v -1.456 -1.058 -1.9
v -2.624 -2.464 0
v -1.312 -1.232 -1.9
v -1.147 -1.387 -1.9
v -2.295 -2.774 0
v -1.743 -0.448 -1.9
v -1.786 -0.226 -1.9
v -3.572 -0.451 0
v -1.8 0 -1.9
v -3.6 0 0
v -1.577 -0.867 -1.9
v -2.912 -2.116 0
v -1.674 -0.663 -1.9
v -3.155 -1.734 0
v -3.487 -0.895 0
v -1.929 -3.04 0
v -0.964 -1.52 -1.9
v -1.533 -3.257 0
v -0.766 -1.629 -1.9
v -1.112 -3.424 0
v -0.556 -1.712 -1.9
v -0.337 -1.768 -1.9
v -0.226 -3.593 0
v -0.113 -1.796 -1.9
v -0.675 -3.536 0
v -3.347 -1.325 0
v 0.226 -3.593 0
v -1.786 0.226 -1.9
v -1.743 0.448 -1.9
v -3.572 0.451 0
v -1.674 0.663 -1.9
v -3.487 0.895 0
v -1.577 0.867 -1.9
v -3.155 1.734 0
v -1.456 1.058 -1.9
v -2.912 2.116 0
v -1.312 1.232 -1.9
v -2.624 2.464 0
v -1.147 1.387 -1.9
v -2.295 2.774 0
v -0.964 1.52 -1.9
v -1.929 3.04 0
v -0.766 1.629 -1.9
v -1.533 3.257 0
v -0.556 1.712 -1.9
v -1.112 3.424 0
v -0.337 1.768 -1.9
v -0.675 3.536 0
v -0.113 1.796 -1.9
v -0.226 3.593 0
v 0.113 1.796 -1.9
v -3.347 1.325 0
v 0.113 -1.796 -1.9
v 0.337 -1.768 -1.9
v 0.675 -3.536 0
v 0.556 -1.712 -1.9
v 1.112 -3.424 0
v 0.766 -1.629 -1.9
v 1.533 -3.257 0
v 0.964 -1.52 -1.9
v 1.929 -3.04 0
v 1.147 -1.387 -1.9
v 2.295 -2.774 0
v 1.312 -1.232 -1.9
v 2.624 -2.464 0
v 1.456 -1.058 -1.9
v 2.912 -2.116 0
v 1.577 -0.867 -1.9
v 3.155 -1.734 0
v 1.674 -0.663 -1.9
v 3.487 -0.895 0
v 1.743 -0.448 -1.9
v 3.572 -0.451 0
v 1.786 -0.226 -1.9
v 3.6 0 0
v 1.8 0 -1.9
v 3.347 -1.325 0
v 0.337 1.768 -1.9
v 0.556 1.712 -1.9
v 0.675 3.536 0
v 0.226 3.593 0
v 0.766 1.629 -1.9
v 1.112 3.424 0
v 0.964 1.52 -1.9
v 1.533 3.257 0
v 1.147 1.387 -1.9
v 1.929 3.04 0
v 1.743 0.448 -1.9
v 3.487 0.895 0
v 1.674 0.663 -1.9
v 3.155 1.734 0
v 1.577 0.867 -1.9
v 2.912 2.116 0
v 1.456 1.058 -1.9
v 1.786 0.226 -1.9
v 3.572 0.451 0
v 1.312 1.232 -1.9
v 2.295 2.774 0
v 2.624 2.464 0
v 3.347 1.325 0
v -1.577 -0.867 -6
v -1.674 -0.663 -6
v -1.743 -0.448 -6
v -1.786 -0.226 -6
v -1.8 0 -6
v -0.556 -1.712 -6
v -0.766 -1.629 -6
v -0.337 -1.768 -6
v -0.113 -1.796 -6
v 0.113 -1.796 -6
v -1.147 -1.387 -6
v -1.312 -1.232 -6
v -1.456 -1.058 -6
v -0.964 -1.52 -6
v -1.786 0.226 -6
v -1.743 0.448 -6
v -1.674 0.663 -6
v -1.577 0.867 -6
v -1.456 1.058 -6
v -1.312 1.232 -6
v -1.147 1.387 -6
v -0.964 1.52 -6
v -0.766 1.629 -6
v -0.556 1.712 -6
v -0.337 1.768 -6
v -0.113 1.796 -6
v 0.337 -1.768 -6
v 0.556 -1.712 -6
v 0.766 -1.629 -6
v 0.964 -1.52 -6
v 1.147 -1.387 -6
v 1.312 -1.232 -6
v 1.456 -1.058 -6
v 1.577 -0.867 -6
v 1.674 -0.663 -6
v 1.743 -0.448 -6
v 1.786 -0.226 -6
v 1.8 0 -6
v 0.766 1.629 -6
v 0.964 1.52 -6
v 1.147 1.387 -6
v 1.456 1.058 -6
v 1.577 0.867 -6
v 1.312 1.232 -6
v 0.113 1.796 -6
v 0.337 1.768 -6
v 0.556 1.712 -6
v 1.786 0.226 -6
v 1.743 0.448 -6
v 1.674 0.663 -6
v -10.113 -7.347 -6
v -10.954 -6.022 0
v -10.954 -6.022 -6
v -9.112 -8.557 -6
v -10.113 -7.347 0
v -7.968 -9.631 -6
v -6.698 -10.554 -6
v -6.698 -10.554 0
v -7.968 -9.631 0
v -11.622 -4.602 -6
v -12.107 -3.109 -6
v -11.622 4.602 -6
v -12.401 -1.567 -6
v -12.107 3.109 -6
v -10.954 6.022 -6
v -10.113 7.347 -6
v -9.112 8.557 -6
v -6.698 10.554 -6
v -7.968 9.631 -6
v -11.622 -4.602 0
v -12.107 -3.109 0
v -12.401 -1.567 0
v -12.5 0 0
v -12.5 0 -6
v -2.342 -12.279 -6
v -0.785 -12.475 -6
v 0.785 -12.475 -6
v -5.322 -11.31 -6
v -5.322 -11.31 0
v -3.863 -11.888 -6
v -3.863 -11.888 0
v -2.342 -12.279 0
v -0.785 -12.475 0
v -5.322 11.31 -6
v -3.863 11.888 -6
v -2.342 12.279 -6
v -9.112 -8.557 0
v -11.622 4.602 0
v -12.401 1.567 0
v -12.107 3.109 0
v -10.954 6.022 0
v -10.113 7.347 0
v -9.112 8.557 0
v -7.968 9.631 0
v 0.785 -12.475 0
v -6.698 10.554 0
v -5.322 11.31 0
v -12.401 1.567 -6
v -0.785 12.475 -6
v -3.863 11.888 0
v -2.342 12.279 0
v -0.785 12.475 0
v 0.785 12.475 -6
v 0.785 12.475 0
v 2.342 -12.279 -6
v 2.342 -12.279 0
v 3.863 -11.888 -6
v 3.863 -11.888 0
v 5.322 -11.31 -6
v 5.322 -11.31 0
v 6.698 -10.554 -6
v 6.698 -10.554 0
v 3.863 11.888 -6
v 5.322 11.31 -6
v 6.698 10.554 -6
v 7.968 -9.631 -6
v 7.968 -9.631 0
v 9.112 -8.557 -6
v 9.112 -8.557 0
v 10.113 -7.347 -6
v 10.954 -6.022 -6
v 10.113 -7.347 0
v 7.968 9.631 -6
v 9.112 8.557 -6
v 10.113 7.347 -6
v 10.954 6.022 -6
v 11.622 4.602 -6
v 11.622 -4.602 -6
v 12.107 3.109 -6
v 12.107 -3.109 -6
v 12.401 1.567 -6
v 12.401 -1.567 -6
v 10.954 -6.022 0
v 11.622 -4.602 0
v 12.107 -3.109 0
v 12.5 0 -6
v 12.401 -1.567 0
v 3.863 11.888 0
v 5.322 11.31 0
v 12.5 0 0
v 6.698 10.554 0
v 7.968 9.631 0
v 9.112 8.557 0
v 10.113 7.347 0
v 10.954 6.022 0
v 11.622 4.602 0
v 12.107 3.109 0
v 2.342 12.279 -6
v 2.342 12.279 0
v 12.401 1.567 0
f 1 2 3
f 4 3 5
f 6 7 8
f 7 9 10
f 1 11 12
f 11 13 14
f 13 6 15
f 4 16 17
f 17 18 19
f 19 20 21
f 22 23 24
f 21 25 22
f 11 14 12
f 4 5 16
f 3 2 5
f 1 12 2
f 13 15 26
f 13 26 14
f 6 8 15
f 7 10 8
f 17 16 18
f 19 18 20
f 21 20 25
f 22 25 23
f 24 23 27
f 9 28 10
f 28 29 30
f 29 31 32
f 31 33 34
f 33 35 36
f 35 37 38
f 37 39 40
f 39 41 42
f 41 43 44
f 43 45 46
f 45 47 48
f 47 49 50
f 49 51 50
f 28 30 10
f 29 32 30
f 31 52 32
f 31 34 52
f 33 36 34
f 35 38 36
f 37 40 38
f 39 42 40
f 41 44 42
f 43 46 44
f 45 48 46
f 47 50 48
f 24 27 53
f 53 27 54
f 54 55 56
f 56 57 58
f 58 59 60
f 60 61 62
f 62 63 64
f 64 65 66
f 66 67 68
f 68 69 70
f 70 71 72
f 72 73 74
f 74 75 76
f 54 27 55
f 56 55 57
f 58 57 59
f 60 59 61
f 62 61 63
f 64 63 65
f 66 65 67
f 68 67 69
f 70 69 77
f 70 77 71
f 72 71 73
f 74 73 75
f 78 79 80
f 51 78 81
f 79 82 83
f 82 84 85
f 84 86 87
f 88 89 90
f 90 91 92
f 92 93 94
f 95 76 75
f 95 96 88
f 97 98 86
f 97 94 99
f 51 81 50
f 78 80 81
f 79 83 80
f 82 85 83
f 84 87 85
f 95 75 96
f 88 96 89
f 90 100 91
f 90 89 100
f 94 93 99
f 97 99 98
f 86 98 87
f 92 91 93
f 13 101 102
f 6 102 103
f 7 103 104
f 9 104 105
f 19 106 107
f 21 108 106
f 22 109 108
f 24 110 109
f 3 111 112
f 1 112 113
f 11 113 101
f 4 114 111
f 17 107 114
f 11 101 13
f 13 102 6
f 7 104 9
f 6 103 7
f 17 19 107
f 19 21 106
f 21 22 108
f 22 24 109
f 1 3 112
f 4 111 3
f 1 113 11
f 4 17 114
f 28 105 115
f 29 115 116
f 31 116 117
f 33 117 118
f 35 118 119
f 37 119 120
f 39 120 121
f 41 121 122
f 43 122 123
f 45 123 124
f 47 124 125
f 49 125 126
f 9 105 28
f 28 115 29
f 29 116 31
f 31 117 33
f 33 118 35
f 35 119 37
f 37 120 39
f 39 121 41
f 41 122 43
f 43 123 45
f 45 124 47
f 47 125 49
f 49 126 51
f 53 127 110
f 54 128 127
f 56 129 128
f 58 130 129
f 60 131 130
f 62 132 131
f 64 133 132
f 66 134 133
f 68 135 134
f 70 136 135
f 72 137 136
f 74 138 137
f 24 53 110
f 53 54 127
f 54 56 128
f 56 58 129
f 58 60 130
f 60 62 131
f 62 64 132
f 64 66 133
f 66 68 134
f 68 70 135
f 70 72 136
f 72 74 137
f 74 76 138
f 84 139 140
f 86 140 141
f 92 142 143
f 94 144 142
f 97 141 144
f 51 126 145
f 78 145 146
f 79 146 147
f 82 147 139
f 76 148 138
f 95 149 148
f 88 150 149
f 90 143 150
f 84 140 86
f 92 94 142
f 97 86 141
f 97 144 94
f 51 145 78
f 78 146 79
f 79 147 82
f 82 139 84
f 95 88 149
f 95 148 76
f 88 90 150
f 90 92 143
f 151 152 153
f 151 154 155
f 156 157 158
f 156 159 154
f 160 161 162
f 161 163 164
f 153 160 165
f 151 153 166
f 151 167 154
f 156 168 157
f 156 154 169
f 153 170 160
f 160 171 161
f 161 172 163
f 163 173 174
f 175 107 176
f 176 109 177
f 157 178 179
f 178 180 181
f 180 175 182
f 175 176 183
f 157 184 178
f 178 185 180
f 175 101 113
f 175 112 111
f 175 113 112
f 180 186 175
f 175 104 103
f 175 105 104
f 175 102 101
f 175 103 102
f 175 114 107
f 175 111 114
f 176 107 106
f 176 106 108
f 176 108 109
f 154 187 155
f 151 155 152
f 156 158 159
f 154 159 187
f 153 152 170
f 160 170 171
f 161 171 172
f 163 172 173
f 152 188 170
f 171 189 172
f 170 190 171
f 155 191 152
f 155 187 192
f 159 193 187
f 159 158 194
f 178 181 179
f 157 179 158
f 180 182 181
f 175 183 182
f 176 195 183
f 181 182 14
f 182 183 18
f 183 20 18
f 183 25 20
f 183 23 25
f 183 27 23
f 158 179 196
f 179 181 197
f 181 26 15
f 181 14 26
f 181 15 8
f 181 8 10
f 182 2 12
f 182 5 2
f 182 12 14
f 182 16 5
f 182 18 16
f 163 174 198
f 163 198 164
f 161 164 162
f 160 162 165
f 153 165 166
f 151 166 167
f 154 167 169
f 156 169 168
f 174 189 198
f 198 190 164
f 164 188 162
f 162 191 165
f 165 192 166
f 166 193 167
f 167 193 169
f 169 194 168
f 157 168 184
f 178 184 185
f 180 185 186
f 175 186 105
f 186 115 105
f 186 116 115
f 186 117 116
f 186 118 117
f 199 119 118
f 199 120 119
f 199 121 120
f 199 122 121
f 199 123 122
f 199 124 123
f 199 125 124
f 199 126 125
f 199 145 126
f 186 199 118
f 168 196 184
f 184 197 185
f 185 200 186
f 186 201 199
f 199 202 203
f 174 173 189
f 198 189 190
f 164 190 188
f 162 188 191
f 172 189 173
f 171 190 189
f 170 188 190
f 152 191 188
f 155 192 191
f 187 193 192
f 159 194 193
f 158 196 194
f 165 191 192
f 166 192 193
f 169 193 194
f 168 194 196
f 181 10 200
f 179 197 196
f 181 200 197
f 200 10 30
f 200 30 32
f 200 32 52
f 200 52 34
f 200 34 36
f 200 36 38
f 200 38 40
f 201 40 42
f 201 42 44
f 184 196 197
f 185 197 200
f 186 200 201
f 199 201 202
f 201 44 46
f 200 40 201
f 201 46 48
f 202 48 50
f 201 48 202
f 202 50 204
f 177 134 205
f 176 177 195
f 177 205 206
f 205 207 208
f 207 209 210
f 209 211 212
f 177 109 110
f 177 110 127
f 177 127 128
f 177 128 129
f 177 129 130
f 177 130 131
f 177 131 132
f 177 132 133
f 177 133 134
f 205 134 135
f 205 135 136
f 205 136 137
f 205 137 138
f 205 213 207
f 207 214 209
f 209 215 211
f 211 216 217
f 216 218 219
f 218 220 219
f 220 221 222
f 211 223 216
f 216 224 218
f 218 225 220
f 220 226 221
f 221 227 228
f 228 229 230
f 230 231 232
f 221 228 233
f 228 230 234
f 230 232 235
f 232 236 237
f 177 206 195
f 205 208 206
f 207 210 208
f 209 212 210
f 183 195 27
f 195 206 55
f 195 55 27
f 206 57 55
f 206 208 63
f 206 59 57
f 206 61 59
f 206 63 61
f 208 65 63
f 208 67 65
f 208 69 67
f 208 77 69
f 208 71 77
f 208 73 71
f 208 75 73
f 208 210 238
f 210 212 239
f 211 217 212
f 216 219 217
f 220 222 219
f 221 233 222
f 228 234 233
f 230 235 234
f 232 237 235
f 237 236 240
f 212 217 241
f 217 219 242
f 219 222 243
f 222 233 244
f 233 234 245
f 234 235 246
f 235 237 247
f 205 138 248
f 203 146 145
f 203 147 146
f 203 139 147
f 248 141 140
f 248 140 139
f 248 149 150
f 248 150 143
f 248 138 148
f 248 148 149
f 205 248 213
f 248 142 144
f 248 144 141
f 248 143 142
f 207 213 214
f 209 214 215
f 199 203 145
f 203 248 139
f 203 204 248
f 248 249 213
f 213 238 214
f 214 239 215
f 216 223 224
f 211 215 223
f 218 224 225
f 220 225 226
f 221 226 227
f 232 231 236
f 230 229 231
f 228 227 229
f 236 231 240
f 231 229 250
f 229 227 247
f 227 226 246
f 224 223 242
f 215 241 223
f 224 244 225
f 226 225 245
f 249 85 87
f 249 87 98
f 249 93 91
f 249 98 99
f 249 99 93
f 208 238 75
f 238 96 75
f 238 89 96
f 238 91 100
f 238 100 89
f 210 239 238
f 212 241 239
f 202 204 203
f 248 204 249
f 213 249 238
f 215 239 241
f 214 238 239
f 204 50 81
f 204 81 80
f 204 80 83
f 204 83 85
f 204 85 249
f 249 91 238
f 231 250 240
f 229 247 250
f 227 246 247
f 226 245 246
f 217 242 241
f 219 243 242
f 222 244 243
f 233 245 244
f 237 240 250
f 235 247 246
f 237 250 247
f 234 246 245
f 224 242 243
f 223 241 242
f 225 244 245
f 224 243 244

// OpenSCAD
$fn = 50;


difference() {
	union() {
		translate(v = [0, 0, -6.0000000000]) {
			cylinder(h = 6, r = 12.5000000000);
		}
	}
	union() {
		translate(v = [0, 0, 0]) {
			rotate(a = [0, 0, 0]) {
				difference() {
					union() {
						translate(v = [0, 0, -9.0000000000]) {
							cylinder(h = 9, r = 1.5000000000);
						}
						translate(v = [0, 0, -1.9000000000]) {
							cylinder(h = 1.9000000000, r1 = 1.8000000000, r2 = 3.6000000000);
						}
						translate(v = [0, 0, -9.0000000000]) {
							cylinder(h = 9, r = 1.8000000000);
						}
						translate(v = [0, 0, -9.0000000000]) {
							cylinder(h = 9, r = 1.5000000000);
						}
					}
					union();
				}
			}
		}
	}
}
